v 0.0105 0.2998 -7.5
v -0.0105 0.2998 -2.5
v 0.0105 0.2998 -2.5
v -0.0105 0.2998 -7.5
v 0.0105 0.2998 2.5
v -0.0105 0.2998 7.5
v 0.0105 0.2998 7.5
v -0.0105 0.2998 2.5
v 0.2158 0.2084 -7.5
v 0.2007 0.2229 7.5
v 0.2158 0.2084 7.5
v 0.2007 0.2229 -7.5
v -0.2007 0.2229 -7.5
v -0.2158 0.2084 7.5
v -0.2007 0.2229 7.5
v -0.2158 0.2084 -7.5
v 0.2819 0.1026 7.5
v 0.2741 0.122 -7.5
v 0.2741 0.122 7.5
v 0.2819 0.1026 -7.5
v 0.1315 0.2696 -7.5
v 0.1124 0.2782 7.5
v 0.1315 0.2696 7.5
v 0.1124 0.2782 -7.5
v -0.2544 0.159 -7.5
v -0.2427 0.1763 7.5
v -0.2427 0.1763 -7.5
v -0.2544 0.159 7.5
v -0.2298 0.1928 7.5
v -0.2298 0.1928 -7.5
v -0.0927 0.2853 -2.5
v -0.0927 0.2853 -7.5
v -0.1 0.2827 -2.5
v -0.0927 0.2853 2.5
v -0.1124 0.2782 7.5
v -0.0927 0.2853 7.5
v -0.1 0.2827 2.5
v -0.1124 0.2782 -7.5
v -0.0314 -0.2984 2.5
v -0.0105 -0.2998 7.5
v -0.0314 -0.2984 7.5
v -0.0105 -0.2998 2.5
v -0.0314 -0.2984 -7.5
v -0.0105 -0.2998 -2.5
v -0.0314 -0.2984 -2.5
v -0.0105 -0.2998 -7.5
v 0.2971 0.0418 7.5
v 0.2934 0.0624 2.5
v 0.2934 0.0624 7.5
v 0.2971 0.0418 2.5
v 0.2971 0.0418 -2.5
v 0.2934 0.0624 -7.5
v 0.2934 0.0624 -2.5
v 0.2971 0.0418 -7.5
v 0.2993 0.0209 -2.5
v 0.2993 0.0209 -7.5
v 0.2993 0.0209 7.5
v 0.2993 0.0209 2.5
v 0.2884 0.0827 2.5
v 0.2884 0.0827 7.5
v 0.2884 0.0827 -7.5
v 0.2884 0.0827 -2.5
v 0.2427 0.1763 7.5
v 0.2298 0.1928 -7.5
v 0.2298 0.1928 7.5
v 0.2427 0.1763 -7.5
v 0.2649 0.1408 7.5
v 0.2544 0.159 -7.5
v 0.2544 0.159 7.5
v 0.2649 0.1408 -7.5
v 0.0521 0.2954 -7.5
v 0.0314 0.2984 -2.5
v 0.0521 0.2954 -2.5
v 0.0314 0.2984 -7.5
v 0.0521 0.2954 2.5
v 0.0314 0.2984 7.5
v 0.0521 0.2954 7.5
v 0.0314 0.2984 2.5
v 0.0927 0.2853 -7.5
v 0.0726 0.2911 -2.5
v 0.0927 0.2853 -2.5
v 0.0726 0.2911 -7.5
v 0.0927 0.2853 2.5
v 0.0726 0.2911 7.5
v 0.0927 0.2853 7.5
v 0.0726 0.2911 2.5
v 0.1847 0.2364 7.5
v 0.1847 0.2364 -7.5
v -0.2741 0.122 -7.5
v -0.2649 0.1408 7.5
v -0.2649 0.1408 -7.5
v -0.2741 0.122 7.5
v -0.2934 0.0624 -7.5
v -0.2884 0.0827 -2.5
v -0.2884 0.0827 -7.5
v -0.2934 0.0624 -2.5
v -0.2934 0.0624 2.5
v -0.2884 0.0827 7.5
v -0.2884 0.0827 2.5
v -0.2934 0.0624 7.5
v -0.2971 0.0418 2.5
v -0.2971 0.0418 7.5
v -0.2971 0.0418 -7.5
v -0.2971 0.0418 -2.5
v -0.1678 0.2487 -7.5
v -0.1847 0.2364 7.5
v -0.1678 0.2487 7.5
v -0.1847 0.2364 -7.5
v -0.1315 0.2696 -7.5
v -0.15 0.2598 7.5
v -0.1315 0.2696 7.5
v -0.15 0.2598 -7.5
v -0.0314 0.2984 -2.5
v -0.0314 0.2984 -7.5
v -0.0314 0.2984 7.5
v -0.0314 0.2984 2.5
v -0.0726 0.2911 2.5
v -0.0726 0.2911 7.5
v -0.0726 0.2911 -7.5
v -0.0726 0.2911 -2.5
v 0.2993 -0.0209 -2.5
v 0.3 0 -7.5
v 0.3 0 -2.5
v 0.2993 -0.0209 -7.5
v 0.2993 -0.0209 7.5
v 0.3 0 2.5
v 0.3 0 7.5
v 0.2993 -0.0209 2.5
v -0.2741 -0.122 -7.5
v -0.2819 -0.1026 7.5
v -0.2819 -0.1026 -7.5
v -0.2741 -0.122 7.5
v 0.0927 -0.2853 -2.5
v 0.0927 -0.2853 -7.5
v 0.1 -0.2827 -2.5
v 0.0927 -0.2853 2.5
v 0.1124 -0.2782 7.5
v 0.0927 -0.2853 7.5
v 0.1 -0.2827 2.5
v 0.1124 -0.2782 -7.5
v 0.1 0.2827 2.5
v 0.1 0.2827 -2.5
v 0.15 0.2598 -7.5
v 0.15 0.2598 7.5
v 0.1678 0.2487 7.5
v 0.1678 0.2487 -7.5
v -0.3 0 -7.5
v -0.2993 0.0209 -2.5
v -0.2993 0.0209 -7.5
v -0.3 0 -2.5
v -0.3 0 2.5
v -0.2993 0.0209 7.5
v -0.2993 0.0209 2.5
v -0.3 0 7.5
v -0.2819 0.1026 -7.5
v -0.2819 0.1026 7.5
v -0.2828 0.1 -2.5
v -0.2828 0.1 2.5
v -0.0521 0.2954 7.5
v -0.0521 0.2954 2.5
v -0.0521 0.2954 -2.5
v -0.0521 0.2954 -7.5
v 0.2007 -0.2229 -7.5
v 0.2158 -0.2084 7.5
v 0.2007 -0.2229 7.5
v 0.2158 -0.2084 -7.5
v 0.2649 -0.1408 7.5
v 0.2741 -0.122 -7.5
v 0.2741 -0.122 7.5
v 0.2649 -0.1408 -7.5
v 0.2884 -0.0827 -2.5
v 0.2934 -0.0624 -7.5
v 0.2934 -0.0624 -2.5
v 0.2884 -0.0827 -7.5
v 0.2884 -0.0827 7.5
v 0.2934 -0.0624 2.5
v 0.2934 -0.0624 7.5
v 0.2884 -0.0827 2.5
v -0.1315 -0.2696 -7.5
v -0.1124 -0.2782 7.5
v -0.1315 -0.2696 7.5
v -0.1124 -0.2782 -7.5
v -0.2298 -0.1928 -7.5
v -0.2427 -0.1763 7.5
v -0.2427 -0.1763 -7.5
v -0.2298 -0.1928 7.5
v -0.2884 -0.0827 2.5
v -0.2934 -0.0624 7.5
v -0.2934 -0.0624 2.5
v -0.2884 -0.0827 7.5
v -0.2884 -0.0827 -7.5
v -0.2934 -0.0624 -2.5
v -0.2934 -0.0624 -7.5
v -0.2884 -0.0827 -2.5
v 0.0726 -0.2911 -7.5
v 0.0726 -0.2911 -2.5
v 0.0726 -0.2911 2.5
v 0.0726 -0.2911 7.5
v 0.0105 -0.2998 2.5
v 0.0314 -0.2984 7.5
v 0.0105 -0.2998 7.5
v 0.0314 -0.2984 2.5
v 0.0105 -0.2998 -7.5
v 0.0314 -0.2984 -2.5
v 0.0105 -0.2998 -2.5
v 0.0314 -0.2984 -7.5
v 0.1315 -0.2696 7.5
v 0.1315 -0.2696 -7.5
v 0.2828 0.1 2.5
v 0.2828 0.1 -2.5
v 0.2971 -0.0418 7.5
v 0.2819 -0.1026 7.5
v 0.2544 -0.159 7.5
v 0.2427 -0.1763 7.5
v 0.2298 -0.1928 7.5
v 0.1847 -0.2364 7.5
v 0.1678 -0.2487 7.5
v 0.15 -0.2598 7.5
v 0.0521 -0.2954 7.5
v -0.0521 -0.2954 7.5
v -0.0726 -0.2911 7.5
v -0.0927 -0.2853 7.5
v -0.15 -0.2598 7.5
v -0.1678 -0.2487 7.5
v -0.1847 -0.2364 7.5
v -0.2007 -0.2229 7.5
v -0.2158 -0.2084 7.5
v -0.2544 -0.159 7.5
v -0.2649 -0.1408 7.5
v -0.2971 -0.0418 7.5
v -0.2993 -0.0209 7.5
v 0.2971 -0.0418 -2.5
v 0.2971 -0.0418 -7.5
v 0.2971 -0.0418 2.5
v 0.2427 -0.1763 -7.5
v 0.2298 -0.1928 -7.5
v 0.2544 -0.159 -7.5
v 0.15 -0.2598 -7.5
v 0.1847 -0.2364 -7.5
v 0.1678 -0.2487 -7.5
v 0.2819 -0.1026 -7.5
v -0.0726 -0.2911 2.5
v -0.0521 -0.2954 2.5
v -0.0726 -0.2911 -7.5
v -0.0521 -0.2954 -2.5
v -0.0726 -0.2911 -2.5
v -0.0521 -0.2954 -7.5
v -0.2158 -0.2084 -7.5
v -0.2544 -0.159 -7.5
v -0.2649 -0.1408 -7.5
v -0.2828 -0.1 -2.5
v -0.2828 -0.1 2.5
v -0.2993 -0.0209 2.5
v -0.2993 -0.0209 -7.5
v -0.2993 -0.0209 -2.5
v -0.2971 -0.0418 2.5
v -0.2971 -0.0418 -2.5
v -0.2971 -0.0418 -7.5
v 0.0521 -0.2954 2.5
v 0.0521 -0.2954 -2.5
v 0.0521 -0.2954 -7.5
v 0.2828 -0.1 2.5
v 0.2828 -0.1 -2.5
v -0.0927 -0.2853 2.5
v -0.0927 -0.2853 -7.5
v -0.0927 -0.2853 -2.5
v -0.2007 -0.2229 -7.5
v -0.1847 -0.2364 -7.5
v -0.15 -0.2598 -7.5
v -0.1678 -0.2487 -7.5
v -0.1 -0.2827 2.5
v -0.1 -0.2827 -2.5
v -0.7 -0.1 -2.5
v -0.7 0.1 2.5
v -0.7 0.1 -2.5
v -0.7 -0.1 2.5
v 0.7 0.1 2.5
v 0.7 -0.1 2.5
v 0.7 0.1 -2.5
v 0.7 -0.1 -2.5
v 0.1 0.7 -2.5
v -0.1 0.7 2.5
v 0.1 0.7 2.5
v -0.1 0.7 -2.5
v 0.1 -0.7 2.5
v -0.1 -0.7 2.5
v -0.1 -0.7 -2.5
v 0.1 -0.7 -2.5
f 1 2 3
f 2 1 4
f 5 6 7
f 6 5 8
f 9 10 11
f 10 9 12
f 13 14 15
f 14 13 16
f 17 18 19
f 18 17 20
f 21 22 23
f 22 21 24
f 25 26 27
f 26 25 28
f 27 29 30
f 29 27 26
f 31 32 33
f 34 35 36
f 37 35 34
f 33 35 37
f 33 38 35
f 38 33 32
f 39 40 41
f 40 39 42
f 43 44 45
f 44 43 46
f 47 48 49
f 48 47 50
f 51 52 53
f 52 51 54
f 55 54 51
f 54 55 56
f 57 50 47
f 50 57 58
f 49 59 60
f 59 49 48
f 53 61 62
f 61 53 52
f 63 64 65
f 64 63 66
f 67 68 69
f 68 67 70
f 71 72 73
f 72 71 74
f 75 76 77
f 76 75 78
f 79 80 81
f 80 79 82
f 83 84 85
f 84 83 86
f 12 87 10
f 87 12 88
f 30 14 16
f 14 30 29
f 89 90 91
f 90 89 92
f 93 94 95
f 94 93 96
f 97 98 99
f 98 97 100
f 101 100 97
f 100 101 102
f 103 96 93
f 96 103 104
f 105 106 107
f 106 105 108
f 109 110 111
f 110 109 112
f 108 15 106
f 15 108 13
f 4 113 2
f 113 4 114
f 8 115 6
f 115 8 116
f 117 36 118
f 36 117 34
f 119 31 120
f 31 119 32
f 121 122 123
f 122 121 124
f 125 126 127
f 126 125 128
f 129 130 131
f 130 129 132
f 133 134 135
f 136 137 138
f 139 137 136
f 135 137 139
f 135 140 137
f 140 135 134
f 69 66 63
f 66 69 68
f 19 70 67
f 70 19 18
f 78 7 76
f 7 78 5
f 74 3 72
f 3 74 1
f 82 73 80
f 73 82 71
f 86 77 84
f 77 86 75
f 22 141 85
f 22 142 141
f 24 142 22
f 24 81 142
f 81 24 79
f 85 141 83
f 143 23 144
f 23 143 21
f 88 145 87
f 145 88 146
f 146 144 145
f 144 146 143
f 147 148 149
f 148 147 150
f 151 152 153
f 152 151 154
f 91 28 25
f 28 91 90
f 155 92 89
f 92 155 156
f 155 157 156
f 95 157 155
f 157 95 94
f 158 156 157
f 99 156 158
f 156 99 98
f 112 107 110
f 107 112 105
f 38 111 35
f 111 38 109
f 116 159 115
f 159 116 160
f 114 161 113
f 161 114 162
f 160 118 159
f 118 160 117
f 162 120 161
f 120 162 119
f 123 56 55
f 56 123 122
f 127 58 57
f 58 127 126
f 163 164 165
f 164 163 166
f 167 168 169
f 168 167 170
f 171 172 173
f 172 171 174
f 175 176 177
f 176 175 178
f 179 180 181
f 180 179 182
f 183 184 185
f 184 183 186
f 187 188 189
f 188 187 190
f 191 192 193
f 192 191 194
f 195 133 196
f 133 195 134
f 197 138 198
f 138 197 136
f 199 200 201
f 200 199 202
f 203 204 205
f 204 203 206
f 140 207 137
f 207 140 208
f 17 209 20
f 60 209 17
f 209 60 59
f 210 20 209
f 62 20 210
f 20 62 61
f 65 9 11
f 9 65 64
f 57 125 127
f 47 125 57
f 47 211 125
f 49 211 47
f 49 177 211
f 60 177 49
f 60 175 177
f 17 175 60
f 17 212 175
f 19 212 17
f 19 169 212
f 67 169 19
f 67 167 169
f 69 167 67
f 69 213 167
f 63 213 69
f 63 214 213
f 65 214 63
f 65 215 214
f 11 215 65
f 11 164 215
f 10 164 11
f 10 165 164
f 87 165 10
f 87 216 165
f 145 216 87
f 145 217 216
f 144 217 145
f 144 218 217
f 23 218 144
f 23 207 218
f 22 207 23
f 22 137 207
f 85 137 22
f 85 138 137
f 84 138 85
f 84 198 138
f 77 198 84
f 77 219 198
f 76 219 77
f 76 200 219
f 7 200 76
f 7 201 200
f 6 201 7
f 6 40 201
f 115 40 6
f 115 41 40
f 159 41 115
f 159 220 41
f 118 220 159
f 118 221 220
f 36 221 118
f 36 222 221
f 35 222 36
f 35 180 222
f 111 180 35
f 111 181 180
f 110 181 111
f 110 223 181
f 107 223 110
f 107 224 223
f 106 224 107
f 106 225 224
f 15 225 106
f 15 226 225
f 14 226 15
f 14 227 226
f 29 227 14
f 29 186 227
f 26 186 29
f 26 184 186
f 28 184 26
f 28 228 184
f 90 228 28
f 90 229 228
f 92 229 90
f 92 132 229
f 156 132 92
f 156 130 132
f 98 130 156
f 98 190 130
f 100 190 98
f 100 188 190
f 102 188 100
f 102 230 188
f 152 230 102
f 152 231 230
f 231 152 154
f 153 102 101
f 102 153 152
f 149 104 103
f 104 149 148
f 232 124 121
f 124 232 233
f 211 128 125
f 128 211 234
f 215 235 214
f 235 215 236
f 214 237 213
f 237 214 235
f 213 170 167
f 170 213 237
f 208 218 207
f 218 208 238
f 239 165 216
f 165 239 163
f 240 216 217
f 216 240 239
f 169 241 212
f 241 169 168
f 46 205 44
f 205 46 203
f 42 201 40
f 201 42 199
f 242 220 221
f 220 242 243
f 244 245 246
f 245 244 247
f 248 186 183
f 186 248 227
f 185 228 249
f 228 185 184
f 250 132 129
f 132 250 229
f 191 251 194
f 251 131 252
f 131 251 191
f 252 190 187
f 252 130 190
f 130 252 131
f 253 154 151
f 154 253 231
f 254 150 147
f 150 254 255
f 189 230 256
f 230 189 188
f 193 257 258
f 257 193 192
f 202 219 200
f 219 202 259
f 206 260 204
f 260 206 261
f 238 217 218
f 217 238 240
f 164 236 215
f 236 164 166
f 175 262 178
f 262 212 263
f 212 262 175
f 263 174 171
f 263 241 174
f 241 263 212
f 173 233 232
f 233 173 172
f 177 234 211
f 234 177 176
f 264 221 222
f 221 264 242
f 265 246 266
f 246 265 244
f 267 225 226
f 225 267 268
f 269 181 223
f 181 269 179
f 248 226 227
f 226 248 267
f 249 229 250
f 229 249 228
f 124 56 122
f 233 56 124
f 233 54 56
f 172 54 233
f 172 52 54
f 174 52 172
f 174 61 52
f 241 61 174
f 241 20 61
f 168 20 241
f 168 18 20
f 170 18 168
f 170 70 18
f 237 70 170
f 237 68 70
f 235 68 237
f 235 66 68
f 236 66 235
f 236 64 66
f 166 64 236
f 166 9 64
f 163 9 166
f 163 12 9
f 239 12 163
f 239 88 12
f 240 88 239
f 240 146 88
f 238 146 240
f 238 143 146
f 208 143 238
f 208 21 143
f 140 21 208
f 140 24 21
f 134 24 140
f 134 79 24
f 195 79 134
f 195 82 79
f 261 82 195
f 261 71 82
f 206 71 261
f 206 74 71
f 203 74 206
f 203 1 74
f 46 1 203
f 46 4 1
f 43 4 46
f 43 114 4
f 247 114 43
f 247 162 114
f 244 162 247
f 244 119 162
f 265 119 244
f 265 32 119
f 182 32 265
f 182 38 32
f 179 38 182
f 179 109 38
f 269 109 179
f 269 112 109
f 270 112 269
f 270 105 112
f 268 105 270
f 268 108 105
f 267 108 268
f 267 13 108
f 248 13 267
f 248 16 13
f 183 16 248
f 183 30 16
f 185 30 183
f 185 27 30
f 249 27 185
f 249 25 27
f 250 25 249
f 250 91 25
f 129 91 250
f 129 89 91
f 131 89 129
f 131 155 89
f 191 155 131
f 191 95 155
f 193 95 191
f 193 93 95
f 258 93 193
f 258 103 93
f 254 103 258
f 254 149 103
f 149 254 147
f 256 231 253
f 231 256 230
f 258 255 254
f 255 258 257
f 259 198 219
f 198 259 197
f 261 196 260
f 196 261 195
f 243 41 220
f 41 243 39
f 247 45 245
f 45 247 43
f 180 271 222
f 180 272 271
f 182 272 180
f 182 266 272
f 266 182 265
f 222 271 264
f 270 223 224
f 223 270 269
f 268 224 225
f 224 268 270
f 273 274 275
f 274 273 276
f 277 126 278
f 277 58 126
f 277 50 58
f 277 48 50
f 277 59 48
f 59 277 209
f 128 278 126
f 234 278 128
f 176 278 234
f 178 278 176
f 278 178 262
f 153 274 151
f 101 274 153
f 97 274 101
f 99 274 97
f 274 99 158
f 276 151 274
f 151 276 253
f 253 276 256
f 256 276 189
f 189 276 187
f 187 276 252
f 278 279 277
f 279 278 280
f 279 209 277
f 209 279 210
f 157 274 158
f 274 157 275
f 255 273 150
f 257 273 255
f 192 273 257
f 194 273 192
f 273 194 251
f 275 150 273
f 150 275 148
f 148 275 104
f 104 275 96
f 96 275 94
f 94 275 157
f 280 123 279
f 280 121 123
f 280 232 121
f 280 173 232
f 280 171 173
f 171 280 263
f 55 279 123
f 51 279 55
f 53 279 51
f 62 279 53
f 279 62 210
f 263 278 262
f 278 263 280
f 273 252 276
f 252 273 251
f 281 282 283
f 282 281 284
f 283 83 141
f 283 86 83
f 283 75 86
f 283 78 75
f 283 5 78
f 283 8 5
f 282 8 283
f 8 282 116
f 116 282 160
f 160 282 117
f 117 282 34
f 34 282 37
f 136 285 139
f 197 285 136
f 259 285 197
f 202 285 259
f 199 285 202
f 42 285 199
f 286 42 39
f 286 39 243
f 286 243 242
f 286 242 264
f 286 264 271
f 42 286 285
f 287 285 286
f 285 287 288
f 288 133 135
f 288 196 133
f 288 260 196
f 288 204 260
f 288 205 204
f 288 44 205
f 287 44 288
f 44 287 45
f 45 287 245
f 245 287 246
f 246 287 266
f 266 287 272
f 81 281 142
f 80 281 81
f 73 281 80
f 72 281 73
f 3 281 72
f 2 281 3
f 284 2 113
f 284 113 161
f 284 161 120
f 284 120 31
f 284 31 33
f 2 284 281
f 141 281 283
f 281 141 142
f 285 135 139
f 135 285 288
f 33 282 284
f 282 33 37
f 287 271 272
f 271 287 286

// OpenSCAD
// Global
$fn=90;

// Shaft for the high frequence alternator
// Likely should be made out of steel
cylinder( h=15, d=0.6, center=true );
cube( size=[1.4,0.2,5], center=true );
rotate(90) cube( size=[1.4,0.2,5], center=true );
